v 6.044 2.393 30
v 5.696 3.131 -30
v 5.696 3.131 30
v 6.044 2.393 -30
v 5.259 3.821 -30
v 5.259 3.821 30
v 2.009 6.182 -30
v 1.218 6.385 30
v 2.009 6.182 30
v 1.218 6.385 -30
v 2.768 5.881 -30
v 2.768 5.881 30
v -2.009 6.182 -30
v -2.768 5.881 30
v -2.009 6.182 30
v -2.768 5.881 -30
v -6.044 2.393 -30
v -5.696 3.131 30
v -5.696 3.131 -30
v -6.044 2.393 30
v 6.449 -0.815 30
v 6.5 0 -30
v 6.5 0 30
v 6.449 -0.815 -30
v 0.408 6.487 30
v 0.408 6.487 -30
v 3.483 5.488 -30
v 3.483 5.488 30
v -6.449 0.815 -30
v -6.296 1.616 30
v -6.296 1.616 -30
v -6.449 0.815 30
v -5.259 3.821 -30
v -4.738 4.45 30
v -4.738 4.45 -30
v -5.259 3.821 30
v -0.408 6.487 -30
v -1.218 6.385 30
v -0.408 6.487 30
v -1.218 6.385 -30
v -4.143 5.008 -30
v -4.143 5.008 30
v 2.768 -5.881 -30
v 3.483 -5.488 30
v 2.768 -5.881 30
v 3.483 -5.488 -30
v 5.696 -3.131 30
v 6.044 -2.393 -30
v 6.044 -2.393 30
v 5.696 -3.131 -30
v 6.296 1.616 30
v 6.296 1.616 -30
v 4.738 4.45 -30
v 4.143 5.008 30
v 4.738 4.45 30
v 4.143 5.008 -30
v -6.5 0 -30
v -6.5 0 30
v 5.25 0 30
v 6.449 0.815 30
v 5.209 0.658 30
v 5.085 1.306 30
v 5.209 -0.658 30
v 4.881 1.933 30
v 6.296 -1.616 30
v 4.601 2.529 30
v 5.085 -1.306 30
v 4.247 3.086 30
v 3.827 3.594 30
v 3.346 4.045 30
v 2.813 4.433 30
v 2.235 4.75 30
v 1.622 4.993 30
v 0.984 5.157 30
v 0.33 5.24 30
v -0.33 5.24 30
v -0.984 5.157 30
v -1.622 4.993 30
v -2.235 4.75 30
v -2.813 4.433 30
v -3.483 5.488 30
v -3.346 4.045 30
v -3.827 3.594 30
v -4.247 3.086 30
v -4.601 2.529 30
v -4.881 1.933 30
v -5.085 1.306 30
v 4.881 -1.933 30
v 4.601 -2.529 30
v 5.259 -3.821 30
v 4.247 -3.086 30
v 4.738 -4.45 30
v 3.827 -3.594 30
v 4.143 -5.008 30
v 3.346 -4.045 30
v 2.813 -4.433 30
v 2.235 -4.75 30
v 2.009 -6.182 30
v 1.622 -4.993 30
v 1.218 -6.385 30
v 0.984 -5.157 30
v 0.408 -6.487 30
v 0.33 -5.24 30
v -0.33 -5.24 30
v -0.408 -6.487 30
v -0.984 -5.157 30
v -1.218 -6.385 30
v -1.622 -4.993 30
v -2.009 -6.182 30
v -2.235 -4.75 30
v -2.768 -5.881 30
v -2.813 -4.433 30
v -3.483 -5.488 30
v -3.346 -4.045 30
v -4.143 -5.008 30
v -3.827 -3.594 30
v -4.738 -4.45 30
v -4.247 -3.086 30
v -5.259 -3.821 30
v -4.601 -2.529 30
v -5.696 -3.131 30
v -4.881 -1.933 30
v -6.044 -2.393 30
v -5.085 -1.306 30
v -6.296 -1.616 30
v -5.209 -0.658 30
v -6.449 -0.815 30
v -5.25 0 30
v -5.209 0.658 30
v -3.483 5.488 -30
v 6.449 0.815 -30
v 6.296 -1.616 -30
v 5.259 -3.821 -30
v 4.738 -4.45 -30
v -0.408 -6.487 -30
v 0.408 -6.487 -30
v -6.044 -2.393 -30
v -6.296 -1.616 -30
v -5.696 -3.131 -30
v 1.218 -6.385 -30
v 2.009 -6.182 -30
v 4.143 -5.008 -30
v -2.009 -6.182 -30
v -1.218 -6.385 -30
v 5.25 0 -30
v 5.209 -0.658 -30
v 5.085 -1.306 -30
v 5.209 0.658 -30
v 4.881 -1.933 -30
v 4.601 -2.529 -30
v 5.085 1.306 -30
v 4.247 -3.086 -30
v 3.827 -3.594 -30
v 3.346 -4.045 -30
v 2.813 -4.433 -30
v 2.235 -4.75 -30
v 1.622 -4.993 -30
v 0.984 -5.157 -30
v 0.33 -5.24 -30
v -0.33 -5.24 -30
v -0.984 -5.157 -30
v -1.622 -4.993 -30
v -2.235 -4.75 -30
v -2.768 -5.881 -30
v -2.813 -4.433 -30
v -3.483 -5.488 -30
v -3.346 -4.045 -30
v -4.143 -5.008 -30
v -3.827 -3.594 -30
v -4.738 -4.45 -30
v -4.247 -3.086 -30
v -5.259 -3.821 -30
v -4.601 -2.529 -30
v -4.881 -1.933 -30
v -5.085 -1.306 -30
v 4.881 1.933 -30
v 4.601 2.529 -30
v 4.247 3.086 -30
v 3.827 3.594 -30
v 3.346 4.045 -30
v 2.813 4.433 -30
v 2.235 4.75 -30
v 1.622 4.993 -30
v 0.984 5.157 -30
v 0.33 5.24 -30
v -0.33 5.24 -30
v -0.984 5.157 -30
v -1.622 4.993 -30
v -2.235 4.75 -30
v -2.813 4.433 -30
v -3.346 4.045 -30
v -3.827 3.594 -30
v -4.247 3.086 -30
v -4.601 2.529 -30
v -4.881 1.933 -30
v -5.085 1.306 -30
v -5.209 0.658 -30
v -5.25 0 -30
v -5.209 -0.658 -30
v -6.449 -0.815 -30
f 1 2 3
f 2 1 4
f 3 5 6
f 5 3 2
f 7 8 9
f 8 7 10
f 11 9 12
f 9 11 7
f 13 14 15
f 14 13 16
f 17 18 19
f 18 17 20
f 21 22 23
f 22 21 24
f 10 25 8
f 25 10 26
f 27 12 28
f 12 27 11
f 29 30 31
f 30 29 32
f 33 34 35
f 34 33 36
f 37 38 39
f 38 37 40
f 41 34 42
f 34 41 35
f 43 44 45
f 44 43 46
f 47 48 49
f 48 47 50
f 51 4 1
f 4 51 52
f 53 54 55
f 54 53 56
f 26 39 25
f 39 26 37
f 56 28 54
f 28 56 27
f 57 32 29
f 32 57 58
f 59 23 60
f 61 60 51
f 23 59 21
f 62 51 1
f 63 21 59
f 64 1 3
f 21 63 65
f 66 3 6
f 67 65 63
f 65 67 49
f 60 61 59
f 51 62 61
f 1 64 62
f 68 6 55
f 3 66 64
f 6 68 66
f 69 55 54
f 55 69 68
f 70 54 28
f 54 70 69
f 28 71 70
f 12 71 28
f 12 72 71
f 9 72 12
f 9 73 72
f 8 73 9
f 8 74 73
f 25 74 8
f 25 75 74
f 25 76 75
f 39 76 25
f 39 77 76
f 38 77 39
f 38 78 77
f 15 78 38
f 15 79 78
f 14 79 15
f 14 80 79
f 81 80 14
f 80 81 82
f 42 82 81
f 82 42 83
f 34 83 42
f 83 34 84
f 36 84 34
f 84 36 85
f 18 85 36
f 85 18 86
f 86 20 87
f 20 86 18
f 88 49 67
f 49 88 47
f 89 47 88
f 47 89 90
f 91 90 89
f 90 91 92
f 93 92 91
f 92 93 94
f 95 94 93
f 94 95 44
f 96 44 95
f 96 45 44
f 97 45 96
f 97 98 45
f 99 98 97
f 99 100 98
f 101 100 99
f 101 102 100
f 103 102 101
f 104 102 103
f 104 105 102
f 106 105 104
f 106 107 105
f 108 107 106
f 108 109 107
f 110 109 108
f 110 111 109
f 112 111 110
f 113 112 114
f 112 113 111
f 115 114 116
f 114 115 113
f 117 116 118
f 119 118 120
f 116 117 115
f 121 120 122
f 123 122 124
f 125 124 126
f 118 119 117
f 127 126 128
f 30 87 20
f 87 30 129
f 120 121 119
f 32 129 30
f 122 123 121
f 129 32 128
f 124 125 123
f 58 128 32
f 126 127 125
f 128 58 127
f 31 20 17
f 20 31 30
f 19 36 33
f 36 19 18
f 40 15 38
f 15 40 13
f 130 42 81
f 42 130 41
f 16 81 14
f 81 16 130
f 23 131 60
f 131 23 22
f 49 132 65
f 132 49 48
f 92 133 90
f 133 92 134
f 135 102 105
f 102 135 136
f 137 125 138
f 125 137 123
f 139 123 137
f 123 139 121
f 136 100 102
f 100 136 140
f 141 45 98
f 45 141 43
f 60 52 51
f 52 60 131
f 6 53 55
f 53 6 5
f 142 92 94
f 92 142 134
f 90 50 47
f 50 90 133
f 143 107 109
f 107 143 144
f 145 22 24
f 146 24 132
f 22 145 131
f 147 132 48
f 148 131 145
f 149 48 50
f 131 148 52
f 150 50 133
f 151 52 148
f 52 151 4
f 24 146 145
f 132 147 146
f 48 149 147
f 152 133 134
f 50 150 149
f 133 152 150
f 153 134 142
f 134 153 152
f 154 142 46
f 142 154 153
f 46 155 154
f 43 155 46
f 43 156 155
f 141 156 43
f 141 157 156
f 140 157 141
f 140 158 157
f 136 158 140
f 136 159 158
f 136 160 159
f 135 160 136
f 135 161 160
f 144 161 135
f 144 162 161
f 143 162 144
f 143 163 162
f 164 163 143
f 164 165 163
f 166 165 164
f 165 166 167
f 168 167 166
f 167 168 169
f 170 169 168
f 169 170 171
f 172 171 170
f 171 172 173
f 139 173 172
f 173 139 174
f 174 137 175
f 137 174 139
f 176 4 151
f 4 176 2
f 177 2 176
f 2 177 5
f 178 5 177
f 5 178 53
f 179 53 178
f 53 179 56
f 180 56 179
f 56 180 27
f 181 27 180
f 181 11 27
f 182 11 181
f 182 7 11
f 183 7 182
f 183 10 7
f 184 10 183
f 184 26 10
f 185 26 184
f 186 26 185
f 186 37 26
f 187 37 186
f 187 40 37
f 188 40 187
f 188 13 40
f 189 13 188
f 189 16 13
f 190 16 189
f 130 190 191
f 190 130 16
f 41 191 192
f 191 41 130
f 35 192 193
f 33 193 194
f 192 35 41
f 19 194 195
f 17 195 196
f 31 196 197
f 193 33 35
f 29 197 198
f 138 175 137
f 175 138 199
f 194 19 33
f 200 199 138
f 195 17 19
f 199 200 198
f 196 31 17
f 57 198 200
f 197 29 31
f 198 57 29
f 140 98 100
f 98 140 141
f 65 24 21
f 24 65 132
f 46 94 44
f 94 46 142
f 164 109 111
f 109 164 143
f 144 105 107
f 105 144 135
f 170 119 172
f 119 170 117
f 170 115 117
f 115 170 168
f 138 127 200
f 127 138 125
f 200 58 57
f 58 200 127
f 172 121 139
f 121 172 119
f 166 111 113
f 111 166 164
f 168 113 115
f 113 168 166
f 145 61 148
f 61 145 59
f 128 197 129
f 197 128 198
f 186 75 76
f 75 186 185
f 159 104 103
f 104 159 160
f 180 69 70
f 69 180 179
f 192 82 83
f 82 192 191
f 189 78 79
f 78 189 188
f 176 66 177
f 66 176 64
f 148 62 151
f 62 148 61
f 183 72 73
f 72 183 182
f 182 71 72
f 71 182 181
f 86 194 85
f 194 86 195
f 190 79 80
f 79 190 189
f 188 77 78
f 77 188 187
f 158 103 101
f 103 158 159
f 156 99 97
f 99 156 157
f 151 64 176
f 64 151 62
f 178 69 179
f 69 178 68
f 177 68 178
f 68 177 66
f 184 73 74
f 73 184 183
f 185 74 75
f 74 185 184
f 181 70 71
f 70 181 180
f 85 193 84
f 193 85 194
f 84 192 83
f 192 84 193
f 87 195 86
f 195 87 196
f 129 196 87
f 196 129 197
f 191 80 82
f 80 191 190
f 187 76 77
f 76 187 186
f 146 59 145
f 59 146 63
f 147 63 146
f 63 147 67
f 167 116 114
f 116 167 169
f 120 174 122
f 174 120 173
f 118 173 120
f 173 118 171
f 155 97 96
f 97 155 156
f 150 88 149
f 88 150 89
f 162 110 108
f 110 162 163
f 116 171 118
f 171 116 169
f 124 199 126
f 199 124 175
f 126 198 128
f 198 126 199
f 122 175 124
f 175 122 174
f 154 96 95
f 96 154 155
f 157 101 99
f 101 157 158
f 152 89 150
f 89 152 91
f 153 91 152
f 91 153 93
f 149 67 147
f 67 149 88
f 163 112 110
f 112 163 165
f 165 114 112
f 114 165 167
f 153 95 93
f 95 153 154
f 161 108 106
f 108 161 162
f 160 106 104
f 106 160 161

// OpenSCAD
$fn = 50;


difference() {
	union() {
		translate(v = [0, 0, -30.0000000000]) {
			cylinder(h = 60, r = 6.5000000000);
		}
	}
	union() {
		translate(v = [0, 0, -100.0000000000]) {
			cylinder(h = 200, r = 5.2500000000);
		}
	}
}
